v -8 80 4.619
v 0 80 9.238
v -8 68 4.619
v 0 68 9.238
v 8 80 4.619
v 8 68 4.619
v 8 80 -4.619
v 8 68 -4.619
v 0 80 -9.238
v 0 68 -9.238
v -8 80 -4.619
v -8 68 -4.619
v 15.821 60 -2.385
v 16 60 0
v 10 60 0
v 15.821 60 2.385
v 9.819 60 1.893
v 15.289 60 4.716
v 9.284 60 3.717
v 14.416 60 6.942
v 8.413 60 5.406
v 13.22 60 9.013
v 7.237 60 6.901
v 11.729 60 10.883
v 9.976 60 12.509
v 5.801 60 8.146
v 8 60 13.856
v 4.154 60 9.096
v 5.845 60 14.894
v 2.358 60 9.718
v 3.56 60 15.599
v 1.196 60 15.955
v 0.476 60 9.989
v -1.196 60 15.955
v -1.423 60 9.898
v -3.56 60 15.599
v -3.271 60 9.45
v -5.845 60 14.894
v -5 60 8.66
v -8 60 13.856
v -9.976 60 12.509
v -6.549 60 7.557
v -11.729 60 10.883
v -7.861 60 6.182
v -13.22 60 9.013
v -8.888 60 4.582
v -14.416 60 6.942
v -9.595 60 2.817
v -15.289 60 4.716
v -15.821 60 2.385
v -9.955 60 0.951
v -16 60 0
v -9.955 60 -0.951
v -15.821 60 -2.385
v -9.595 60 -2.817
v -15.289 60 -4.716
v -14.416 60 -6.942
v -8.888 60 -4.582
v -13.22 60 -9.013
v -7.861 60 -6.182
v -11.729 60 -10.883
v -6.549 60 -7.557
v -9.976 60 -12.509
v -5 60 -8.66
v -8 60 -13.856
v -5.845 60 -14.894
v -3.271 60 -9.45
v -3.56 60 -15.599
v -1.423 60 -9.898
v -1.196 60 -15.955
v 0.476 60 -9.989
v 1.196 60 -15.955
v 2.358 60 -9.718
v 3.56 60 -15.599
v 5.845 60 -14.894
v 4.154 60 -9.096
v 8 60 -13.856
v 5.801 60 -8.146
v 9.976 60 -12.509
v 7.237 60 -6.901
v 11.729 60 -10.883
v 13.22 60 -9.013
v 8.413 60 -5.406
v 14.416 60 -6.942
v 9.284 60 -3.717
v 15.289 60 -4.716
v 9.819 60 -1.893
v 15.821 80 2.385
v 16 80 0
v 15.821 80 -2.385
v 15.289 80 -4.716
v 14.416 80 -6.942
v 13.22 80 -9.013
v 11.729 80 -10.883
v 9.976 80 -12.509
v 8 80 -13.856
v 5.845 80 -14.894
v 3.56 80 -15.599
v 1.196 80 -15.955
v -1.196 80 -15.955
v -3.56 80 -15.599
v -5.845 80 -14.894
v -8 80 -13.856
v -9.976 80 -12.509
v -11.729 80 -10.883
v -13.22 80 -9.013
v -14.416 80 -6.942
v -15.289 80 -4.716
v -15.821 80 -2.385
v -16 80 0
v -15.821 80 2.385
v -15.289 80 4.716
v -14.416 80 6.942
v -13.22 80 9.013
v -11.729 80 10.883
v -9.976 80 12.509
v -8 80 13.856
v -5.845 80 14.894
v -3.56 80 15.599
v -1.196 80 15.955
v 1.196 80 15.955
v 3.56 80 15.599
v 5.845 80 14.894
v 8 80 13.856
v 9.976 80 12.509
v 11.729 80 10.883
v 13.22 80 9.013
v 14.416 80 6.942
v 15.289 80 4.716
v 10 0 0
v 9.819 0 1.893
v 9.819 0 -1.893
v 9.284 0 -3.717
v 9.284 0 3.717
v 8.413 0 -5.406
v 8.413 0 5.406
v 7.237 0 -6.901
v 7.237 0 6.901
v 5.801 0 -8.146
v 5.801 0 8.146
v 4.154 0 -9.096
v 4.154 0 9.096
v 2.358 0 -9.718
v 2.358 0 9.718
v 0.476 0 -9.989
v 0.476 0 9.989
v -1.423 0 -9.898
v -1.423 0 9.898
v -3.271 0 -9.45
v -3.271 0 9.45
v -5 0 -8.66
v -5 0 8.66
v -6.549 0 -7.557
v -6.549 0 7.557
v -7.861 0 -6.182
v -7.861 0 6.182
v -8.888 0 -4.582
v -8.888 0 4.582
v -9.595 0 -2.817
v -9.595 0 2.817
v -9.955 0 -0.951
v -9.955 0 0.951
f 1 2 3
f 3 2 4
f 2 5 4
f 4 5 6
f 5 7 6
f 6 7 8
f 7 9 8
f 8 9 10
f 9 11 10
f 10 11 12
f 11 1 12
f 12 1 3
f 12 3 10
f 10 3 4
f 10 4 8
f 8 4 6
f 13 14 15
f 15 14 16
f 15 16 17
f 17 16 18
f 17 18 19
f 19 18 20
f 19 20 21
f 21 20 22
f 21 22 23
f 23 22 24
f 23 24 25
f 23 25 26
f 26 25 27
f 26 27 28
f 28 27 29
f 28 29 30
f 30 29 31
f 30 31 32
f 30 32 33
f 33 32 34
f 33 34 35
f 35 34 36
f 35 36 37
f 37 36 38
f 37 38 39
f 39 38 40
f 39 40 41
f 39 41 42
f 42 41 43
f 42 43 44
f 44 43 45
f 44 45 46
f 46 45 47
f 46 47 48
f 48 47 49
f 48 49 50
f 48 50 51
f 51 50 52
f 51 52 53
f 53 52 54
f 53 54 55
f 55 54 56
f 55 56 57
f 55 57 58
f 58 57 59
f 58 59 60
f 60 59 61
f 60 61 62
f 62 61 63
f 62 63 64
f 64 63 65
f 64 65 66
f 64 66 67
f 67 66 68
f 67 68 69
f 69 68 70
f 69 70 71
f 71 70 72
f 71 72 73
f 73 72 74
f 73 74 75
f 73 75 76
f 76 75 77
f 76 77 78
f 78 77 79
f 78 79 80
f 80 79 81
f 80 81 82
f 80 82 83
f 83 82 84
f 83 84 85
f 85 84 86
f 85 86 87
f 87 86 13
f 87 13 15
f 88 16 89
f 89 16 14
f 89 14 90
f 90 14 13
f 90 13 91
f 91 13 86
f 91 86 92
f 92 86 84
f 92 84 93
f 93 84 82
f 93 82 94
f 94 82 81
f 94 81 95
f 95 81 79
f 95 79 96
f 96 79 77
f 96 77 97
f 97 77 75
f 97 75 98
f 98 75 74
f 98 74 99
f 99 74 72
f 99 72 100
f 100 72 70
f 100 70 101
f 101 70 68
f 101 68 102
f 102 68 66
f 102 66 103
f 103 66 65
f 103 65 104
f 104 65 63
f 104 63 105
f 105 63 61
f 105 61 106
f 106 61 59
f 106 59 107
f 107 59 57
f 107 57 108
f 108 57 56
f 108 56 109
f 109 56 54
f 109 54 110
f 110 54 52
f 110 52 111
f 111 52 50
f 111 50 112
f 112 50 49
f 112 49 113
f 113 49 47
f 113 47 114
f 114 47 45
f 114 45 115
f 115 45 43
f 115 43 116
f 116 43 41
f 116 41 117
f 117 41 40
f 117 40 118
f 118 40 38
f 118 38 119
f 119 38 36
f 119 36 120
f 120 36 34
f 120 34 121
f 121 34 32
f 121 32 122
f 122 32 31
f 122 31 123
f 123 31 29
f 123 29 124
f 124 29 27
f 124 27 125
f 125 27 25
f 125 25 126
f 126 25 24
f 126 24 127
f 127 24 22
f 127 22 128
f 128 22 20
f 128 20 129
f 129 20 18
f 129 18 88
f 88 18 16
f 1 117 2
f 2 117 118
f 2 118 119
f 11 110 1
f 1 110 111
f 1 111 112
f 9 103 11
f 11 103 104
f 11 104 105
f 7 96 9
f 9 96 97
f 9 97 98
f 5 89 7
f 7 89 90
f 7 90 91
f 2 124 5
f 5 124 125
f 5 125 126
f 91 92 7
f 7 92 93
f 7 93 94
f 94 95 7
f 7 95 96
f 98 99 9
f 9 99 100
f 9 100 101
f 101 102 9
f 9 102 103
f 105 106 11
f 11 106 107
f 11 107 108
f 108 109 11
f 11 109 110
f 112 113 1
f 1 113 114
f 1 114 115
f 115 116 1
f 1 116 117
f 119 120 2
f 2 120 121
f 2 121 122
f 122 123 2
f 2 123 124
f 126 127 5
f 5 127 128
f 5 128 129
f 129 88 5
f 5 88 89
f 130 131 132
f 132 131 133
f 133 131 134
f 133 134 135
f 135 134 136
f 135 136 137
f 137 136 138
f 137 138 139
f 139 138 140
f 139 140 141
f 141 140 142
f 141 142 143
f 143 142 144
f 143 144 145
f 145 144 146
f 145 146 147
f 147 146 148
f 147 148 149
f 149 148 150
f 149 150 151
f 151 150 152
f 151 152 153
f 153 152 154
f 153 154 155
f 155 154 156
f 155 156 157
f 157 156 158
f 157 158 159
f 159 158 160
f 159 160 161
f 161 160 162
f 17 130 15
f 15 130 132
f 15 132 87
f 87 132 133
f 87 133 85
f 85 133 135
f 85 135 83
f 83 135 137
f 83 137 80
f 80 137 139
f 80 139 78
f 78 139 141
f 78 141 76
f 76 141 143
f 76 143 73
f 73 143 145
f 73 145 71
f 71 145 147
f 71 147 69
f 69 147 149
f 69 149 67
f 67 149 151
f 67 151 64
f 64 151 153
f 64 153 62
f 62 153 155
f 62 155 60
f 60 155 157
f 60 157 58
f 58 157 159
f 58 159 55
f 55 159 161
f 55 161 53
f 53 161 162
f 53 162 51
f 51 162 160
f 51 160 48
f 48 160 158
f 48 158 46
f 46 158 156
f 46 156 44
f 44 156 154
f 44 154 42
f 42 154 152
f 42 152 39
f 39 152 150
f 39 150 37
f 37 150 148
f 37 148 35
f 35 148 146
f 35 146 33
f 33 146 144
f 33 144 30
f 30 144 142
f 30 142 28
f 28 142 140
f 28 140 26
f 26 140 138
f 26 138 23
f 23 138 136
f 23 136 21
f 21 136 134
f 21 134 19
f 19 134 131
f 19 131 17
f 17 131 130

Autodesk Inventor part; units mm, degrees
ref_plane "YZ Plane" through (0, 0, 0) normal (1, 0, 0) x (0, 1, 0)
ref_plane "XZ Plane" through (0, 0, 0) normal (0, 1, 0) x (-1, 0, 0)
ref_plane "XY Plane" through (0, 0, 0) normal (0, 0, 1) x (1, 0, 0)
sketch "Sketch1" plane through (0, 0, 0) normal (0, 0, 1) x (1, 0, 0)
  line L0 (0, 0) -> (0, 80)
  line L1 (0, 80) -> (16, 80)
  line L2 (16, 80) -> (16, 60)
  line L3 (16, 60) -> (10, 60)
  line L4 (10, 60) -> (10, 0)
  line L5 (0, 0) -> (10, 0)
  dimension "d" = 20
  dimension "HT" = 20
  dimension "Height" = 60
  dimension "HD" = 32
revolve "Revolution1" add sketch "Sketch1" angle 360 about axis through (0, 0, 0) along (0, 1, 0)
sketch "Sketch2" plane through (0, 80, 0) normal (0, 1, 0) x (1, 0, 0)
  line L0 (0, 9.2376) -> (8, 4.6188)
  line L1 (8, 4.6188) -> (8, -4.6188)
  line L2 (8, -4.6188) -> (0, -9.2376)
  line L3 (0, -9.2376) -> (-8, -4.6188)
  line L4 (-8, -4.6188) -> (-8, 4.6188)
  line L5 (-8, 4.6188) -> (0, 9.2376)
  point P0 (0, 0)
  point P1 (0, 0)
  dimension "HL" = 16
extrude "Extrusion1" cut sketch "Sketch2" against normal blind 12
equation "\"HT\" = d"
equation "\"Height\" = 3 * d"
equation "\"HD\" = 1.6 * d"
equation "\"HL\" = 0.8 * d"
equation "\"HH\" = 0.6 * d"
properties part number "CE-2.1.5-01"
